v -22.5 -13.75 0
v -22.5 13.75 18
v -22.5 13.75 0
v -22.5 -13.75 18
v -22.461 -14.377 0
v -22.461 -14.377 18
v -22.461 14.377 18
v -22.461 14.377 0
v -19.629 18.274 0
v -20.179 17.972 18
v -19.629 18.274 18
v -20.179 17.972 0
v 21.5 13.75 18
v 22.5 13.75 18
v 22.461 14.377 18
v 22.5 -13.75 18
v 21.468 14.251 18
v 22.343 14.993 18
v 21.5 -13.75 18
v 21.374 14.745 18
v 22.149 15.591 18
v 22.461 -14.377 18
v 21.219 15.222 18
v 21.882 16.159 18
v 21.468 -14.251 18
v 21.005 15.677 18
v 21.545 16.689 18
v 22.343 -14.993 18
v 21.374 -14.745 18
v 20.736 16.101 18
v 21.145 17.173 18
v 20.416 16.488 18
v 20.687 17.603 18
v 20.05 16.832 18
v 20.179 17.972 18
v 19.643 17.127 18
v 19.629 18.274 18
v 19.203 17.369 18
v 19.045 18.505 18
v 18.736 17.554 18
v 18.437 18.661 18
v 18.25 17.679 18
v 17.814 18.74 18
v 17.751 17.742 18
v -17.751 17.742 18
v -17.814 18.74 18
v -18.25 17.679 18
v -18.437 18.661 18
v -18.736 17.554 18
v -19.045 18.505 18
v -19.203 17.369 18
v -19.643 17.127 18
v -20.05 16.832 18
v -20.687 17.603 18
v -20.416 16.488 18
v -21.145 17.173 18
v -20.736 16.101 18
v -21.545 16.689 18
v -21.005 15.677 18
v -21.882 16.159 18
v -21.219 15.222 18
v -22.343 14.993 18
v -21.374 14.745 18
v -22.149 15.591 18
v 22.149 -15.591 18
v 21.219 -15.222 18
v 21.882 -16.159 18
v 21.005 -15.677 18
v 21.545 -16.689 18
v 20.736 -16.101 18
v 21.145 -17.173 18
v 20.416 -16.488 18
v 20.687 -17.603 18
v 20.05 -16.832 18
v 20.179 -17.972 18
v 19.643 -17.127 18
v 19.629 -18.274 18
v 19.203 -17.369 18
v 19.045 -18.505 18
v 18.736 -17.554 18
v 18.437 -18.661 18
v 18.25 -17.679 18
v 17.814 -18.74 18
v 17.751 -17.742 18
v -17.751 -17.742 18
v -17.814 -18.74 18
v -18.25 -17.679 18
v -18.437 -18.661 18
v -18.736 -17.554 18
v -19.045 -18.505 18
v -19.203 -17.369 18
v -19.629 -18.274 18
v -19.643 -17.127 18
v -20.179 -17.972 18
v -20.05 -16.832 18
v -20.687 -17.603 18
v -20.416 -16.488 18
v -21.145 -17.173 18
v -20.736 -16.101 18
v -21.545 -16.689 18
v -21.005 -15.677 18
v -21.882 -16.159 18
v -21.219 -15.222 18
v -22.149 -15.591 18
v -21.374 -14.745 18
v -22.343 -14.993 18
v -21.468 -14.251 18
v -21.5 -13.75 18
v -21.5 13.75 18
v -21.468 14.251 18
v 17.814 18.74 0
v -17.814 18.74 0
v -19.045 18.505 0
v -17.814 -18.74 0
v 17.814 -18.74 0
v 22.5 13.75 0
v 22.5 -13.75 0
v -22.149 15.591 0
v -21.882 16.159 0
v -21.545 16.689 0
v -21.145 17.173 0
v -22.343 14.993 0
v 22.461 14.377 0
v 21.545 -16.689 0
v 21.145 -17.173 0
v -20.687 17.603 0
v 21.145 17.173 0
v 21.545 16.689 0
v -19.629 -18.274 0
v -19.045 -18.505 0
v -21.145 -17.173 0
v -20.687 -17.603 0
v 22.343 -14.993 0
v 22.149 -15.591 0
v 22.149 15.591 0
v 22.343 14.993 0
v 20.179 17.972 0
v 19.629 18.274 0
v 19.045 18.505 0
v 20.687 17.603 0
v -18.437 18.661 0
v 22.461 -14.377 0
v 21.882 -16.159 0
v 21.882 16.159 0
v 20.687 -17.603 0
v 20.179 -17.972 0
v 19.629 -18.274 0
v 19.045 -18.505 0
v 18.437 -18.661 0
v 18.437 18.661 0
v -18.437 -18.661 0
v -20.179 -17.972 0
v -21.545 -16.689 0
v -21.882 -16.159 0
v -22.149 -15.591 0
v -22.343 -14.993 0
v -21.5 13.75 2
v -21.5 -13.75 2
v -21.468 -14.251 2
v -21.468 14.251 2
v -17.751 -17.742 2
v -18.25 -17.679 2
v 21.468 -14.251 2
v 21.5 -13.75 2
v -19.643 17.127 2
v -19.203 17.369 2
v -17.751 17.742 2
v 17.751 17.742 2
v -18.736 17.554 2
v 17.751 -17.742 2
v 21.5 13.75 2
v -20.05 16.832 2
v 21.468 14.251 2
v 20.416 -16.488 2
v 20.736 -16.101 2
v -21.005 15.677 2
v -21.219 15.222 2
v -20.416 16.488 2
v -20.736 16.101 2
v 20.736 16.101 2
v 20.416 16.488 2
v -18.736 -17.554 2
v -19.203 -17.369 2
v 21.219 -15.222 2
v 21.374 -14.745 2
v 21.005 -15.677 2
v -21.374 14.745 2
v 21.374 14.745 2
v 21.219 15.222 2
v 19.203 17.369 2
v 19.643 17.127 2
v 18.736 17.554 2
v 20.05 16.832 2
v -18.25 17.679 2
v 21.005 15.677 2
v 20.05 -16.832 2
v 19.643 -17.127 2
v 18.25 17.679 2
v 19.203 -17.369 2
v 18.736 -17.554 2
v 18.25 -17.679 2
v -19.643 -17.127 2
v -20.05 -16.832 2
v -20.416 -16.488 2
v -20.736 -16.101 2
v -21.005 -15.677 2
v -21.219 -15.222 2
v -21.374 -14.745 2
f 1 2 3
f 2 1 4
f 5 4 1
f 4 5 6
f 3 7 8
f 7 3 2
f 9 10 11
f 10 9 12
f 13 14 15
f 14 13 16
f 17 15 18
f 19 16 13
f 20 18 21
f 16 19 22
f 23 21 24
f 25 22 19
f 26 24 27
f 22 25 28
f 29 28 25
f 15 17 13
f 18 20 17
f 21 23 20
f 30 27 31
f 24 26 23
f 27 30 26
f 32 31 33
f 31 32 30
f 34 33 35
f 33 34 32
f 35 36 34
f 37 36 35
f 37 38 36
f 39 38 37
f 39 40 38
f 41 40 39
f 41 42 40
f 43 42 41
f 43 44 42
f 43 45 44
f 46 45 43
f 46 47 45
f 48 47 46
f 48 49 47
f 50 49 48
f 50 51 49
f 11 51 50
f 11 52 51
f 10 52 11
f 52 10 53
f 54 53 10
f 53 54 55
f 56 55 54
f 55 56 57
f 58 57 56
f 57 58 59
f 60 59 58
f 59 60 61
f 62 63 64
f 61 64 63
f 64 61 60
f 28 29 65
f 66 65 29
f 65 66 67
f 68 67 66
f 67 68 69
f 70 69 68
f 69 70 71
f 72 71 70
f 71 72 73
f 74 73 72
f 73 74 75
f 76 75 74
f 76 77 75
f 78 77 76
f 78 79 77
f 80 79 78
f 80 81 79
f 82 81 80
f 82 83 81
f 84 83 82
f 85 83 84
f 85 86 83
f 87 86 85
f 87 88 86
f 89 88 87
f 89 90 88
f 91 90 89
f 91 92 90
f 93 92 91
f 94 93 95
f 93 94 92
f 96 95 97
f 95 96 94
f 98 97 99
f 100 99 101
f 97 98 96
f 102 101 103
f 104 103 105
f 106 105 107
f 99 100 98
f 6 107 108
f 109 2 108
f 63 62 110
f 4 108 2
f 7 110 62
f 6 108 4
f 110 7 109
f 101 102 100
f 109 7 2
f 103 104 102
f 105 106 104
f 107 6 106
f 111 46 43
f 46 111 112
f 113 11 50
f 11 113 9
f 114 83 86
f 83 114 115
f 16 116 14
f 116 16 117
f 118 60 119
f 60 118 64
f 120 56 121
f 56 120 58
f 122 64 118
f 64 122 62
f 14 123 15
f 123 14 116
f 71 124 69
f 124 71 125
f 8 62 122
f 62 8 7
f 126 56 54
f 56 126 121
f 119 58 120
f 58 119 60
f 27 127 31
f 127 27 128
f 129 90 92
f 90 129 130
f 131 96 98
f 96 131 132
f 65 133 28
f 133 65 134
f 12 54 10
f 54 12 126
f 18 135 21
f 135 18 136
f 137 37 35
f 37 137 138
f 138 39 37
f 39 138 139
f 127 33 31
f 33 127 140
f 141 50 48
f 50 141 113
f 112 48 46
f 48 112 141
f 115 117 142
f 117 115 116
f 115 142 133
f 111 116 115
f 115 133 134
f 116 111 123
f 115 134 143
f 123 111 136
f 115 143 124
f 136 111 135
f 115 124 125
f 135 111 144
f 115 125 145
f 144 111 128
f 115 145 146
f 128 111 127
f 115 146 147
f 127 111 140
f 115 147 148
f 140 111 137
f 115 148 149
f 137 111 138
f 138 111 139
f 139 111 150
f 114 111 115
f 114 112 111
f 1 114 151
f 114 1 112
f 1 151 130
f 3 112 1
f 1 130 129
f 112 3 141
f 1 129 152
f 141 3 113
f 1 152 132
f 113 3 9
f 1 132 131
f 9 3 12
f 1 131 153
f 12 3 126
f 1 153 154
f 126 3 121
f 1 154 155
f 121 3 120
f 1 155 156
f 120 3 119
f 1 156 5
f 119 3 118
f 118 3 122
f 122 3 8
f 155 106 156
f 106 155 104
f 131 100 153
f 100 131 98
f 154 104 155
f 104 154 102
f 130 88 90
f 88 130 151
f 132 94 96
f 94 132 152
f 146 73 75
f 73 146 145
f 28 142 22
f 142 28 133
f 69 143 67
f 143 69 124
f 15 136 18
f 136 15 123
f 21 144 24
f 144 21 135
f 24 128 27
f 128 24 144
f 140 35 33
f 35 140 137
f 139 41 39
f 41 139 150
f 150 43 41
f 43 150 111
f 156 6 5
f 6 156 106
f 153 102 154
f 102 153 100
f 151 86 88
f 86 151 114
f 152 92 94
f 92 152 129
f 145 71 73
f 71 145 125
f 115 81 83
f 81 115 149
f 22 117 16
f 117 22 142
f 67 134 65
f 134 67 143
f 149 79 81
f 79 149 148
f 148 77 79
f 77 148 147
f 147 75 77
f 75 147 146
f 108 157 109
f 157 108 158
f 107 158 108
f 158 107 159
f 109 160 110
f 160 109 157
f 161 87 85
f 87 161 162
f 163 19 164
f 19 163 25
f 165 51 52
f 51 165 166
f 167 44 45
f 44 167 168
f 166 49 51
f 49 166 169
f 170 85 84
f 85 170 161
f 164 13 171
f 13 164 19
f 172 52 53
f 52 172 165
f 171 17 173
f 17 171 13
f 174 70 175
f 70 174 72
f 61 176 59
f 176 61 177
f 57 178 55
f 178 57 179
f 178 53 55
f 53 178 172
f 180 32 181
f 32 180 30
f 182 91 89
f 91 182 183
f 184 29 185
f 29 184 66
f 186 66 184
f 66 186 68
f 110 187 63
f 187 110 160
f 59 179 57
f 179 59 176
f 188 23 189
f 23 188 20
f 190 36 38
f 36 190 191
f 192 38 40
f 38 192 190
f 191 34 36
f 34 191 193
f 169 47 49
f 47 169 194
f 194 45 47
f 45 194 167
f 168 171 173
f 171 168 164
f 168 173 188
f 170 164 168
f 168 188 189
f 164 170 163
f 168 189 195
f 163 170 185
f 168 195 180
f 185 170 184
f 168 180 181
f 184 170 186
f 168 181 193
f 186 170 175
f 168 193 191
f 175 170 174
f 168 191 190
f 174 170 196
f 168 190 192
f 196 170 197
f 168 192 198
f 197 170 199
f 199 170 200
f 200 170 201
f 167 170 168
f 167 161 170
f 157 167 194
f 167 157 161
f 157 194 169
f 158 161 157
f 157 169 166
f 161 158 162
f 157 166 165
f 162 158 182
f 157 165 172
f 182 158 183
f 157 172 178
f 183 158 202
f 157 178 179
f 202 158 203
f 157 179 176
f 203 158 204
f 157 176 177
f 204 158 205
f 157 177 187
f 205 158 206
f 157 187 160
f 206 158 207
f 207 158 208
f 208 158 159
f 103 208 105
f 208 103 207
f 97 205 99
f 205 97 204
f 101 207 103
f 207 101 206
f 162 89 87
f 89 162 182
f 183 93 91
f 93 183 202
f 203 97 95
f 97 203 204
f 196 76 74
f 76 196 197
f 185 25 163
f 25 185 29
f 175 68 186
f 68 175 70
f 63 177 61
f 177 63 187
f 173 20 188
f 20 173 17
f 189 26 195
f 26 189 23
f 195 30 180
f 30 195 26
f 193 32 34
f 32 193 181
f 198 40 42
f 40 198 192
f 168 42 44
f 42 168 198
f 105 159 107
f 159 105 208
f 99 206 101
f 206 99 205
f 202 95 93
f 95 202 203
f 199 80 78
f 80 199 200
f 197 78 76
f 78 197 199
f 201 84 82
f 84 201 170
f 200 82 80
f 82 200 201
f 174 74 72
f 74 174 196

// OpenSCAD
$fn = 50;


difference() {
	union() {
		hull() {
			translate(v = [-17.5000000000, 13.7500000000, 0]) {
				cylinder(h = 18, r = 5);
			}
			translate(v = [17.5000000000, 13.7500000000, 0]) {
				cylinder(h = 18, r = 5);
			}
			translate(v = [-17.5000000000, -13.7500000000, 0]) {
				cylinder(h = 18, r = 5);
			}
			translate(v = [17.5000000000, -13.7500000000, 0]) {
				cylinder(h = 18, r = 5);
			}
		}
	}
	union() {
		translate(v = [0, 0, 2]) {
			hull() {
				translate(v = [-17.5000000000, 13.7500000000, 0]) {
					cylinder(h = 16, r = 4);
				}
				translate(v = [17.5000000000, 13.7500000000, 0]) {
					cylinder(h = 16, r = 4);
				}
				translate(v = [-17.5000000000, -13.7500000000, 0]) {
					cylinder(h = 16, r = 4);
				}
				translate(v = [17.5000000000, -13.7500000000, 0]) {
					cylinder(h = 16, r = 4);
				}
			}
		}
	}
}
